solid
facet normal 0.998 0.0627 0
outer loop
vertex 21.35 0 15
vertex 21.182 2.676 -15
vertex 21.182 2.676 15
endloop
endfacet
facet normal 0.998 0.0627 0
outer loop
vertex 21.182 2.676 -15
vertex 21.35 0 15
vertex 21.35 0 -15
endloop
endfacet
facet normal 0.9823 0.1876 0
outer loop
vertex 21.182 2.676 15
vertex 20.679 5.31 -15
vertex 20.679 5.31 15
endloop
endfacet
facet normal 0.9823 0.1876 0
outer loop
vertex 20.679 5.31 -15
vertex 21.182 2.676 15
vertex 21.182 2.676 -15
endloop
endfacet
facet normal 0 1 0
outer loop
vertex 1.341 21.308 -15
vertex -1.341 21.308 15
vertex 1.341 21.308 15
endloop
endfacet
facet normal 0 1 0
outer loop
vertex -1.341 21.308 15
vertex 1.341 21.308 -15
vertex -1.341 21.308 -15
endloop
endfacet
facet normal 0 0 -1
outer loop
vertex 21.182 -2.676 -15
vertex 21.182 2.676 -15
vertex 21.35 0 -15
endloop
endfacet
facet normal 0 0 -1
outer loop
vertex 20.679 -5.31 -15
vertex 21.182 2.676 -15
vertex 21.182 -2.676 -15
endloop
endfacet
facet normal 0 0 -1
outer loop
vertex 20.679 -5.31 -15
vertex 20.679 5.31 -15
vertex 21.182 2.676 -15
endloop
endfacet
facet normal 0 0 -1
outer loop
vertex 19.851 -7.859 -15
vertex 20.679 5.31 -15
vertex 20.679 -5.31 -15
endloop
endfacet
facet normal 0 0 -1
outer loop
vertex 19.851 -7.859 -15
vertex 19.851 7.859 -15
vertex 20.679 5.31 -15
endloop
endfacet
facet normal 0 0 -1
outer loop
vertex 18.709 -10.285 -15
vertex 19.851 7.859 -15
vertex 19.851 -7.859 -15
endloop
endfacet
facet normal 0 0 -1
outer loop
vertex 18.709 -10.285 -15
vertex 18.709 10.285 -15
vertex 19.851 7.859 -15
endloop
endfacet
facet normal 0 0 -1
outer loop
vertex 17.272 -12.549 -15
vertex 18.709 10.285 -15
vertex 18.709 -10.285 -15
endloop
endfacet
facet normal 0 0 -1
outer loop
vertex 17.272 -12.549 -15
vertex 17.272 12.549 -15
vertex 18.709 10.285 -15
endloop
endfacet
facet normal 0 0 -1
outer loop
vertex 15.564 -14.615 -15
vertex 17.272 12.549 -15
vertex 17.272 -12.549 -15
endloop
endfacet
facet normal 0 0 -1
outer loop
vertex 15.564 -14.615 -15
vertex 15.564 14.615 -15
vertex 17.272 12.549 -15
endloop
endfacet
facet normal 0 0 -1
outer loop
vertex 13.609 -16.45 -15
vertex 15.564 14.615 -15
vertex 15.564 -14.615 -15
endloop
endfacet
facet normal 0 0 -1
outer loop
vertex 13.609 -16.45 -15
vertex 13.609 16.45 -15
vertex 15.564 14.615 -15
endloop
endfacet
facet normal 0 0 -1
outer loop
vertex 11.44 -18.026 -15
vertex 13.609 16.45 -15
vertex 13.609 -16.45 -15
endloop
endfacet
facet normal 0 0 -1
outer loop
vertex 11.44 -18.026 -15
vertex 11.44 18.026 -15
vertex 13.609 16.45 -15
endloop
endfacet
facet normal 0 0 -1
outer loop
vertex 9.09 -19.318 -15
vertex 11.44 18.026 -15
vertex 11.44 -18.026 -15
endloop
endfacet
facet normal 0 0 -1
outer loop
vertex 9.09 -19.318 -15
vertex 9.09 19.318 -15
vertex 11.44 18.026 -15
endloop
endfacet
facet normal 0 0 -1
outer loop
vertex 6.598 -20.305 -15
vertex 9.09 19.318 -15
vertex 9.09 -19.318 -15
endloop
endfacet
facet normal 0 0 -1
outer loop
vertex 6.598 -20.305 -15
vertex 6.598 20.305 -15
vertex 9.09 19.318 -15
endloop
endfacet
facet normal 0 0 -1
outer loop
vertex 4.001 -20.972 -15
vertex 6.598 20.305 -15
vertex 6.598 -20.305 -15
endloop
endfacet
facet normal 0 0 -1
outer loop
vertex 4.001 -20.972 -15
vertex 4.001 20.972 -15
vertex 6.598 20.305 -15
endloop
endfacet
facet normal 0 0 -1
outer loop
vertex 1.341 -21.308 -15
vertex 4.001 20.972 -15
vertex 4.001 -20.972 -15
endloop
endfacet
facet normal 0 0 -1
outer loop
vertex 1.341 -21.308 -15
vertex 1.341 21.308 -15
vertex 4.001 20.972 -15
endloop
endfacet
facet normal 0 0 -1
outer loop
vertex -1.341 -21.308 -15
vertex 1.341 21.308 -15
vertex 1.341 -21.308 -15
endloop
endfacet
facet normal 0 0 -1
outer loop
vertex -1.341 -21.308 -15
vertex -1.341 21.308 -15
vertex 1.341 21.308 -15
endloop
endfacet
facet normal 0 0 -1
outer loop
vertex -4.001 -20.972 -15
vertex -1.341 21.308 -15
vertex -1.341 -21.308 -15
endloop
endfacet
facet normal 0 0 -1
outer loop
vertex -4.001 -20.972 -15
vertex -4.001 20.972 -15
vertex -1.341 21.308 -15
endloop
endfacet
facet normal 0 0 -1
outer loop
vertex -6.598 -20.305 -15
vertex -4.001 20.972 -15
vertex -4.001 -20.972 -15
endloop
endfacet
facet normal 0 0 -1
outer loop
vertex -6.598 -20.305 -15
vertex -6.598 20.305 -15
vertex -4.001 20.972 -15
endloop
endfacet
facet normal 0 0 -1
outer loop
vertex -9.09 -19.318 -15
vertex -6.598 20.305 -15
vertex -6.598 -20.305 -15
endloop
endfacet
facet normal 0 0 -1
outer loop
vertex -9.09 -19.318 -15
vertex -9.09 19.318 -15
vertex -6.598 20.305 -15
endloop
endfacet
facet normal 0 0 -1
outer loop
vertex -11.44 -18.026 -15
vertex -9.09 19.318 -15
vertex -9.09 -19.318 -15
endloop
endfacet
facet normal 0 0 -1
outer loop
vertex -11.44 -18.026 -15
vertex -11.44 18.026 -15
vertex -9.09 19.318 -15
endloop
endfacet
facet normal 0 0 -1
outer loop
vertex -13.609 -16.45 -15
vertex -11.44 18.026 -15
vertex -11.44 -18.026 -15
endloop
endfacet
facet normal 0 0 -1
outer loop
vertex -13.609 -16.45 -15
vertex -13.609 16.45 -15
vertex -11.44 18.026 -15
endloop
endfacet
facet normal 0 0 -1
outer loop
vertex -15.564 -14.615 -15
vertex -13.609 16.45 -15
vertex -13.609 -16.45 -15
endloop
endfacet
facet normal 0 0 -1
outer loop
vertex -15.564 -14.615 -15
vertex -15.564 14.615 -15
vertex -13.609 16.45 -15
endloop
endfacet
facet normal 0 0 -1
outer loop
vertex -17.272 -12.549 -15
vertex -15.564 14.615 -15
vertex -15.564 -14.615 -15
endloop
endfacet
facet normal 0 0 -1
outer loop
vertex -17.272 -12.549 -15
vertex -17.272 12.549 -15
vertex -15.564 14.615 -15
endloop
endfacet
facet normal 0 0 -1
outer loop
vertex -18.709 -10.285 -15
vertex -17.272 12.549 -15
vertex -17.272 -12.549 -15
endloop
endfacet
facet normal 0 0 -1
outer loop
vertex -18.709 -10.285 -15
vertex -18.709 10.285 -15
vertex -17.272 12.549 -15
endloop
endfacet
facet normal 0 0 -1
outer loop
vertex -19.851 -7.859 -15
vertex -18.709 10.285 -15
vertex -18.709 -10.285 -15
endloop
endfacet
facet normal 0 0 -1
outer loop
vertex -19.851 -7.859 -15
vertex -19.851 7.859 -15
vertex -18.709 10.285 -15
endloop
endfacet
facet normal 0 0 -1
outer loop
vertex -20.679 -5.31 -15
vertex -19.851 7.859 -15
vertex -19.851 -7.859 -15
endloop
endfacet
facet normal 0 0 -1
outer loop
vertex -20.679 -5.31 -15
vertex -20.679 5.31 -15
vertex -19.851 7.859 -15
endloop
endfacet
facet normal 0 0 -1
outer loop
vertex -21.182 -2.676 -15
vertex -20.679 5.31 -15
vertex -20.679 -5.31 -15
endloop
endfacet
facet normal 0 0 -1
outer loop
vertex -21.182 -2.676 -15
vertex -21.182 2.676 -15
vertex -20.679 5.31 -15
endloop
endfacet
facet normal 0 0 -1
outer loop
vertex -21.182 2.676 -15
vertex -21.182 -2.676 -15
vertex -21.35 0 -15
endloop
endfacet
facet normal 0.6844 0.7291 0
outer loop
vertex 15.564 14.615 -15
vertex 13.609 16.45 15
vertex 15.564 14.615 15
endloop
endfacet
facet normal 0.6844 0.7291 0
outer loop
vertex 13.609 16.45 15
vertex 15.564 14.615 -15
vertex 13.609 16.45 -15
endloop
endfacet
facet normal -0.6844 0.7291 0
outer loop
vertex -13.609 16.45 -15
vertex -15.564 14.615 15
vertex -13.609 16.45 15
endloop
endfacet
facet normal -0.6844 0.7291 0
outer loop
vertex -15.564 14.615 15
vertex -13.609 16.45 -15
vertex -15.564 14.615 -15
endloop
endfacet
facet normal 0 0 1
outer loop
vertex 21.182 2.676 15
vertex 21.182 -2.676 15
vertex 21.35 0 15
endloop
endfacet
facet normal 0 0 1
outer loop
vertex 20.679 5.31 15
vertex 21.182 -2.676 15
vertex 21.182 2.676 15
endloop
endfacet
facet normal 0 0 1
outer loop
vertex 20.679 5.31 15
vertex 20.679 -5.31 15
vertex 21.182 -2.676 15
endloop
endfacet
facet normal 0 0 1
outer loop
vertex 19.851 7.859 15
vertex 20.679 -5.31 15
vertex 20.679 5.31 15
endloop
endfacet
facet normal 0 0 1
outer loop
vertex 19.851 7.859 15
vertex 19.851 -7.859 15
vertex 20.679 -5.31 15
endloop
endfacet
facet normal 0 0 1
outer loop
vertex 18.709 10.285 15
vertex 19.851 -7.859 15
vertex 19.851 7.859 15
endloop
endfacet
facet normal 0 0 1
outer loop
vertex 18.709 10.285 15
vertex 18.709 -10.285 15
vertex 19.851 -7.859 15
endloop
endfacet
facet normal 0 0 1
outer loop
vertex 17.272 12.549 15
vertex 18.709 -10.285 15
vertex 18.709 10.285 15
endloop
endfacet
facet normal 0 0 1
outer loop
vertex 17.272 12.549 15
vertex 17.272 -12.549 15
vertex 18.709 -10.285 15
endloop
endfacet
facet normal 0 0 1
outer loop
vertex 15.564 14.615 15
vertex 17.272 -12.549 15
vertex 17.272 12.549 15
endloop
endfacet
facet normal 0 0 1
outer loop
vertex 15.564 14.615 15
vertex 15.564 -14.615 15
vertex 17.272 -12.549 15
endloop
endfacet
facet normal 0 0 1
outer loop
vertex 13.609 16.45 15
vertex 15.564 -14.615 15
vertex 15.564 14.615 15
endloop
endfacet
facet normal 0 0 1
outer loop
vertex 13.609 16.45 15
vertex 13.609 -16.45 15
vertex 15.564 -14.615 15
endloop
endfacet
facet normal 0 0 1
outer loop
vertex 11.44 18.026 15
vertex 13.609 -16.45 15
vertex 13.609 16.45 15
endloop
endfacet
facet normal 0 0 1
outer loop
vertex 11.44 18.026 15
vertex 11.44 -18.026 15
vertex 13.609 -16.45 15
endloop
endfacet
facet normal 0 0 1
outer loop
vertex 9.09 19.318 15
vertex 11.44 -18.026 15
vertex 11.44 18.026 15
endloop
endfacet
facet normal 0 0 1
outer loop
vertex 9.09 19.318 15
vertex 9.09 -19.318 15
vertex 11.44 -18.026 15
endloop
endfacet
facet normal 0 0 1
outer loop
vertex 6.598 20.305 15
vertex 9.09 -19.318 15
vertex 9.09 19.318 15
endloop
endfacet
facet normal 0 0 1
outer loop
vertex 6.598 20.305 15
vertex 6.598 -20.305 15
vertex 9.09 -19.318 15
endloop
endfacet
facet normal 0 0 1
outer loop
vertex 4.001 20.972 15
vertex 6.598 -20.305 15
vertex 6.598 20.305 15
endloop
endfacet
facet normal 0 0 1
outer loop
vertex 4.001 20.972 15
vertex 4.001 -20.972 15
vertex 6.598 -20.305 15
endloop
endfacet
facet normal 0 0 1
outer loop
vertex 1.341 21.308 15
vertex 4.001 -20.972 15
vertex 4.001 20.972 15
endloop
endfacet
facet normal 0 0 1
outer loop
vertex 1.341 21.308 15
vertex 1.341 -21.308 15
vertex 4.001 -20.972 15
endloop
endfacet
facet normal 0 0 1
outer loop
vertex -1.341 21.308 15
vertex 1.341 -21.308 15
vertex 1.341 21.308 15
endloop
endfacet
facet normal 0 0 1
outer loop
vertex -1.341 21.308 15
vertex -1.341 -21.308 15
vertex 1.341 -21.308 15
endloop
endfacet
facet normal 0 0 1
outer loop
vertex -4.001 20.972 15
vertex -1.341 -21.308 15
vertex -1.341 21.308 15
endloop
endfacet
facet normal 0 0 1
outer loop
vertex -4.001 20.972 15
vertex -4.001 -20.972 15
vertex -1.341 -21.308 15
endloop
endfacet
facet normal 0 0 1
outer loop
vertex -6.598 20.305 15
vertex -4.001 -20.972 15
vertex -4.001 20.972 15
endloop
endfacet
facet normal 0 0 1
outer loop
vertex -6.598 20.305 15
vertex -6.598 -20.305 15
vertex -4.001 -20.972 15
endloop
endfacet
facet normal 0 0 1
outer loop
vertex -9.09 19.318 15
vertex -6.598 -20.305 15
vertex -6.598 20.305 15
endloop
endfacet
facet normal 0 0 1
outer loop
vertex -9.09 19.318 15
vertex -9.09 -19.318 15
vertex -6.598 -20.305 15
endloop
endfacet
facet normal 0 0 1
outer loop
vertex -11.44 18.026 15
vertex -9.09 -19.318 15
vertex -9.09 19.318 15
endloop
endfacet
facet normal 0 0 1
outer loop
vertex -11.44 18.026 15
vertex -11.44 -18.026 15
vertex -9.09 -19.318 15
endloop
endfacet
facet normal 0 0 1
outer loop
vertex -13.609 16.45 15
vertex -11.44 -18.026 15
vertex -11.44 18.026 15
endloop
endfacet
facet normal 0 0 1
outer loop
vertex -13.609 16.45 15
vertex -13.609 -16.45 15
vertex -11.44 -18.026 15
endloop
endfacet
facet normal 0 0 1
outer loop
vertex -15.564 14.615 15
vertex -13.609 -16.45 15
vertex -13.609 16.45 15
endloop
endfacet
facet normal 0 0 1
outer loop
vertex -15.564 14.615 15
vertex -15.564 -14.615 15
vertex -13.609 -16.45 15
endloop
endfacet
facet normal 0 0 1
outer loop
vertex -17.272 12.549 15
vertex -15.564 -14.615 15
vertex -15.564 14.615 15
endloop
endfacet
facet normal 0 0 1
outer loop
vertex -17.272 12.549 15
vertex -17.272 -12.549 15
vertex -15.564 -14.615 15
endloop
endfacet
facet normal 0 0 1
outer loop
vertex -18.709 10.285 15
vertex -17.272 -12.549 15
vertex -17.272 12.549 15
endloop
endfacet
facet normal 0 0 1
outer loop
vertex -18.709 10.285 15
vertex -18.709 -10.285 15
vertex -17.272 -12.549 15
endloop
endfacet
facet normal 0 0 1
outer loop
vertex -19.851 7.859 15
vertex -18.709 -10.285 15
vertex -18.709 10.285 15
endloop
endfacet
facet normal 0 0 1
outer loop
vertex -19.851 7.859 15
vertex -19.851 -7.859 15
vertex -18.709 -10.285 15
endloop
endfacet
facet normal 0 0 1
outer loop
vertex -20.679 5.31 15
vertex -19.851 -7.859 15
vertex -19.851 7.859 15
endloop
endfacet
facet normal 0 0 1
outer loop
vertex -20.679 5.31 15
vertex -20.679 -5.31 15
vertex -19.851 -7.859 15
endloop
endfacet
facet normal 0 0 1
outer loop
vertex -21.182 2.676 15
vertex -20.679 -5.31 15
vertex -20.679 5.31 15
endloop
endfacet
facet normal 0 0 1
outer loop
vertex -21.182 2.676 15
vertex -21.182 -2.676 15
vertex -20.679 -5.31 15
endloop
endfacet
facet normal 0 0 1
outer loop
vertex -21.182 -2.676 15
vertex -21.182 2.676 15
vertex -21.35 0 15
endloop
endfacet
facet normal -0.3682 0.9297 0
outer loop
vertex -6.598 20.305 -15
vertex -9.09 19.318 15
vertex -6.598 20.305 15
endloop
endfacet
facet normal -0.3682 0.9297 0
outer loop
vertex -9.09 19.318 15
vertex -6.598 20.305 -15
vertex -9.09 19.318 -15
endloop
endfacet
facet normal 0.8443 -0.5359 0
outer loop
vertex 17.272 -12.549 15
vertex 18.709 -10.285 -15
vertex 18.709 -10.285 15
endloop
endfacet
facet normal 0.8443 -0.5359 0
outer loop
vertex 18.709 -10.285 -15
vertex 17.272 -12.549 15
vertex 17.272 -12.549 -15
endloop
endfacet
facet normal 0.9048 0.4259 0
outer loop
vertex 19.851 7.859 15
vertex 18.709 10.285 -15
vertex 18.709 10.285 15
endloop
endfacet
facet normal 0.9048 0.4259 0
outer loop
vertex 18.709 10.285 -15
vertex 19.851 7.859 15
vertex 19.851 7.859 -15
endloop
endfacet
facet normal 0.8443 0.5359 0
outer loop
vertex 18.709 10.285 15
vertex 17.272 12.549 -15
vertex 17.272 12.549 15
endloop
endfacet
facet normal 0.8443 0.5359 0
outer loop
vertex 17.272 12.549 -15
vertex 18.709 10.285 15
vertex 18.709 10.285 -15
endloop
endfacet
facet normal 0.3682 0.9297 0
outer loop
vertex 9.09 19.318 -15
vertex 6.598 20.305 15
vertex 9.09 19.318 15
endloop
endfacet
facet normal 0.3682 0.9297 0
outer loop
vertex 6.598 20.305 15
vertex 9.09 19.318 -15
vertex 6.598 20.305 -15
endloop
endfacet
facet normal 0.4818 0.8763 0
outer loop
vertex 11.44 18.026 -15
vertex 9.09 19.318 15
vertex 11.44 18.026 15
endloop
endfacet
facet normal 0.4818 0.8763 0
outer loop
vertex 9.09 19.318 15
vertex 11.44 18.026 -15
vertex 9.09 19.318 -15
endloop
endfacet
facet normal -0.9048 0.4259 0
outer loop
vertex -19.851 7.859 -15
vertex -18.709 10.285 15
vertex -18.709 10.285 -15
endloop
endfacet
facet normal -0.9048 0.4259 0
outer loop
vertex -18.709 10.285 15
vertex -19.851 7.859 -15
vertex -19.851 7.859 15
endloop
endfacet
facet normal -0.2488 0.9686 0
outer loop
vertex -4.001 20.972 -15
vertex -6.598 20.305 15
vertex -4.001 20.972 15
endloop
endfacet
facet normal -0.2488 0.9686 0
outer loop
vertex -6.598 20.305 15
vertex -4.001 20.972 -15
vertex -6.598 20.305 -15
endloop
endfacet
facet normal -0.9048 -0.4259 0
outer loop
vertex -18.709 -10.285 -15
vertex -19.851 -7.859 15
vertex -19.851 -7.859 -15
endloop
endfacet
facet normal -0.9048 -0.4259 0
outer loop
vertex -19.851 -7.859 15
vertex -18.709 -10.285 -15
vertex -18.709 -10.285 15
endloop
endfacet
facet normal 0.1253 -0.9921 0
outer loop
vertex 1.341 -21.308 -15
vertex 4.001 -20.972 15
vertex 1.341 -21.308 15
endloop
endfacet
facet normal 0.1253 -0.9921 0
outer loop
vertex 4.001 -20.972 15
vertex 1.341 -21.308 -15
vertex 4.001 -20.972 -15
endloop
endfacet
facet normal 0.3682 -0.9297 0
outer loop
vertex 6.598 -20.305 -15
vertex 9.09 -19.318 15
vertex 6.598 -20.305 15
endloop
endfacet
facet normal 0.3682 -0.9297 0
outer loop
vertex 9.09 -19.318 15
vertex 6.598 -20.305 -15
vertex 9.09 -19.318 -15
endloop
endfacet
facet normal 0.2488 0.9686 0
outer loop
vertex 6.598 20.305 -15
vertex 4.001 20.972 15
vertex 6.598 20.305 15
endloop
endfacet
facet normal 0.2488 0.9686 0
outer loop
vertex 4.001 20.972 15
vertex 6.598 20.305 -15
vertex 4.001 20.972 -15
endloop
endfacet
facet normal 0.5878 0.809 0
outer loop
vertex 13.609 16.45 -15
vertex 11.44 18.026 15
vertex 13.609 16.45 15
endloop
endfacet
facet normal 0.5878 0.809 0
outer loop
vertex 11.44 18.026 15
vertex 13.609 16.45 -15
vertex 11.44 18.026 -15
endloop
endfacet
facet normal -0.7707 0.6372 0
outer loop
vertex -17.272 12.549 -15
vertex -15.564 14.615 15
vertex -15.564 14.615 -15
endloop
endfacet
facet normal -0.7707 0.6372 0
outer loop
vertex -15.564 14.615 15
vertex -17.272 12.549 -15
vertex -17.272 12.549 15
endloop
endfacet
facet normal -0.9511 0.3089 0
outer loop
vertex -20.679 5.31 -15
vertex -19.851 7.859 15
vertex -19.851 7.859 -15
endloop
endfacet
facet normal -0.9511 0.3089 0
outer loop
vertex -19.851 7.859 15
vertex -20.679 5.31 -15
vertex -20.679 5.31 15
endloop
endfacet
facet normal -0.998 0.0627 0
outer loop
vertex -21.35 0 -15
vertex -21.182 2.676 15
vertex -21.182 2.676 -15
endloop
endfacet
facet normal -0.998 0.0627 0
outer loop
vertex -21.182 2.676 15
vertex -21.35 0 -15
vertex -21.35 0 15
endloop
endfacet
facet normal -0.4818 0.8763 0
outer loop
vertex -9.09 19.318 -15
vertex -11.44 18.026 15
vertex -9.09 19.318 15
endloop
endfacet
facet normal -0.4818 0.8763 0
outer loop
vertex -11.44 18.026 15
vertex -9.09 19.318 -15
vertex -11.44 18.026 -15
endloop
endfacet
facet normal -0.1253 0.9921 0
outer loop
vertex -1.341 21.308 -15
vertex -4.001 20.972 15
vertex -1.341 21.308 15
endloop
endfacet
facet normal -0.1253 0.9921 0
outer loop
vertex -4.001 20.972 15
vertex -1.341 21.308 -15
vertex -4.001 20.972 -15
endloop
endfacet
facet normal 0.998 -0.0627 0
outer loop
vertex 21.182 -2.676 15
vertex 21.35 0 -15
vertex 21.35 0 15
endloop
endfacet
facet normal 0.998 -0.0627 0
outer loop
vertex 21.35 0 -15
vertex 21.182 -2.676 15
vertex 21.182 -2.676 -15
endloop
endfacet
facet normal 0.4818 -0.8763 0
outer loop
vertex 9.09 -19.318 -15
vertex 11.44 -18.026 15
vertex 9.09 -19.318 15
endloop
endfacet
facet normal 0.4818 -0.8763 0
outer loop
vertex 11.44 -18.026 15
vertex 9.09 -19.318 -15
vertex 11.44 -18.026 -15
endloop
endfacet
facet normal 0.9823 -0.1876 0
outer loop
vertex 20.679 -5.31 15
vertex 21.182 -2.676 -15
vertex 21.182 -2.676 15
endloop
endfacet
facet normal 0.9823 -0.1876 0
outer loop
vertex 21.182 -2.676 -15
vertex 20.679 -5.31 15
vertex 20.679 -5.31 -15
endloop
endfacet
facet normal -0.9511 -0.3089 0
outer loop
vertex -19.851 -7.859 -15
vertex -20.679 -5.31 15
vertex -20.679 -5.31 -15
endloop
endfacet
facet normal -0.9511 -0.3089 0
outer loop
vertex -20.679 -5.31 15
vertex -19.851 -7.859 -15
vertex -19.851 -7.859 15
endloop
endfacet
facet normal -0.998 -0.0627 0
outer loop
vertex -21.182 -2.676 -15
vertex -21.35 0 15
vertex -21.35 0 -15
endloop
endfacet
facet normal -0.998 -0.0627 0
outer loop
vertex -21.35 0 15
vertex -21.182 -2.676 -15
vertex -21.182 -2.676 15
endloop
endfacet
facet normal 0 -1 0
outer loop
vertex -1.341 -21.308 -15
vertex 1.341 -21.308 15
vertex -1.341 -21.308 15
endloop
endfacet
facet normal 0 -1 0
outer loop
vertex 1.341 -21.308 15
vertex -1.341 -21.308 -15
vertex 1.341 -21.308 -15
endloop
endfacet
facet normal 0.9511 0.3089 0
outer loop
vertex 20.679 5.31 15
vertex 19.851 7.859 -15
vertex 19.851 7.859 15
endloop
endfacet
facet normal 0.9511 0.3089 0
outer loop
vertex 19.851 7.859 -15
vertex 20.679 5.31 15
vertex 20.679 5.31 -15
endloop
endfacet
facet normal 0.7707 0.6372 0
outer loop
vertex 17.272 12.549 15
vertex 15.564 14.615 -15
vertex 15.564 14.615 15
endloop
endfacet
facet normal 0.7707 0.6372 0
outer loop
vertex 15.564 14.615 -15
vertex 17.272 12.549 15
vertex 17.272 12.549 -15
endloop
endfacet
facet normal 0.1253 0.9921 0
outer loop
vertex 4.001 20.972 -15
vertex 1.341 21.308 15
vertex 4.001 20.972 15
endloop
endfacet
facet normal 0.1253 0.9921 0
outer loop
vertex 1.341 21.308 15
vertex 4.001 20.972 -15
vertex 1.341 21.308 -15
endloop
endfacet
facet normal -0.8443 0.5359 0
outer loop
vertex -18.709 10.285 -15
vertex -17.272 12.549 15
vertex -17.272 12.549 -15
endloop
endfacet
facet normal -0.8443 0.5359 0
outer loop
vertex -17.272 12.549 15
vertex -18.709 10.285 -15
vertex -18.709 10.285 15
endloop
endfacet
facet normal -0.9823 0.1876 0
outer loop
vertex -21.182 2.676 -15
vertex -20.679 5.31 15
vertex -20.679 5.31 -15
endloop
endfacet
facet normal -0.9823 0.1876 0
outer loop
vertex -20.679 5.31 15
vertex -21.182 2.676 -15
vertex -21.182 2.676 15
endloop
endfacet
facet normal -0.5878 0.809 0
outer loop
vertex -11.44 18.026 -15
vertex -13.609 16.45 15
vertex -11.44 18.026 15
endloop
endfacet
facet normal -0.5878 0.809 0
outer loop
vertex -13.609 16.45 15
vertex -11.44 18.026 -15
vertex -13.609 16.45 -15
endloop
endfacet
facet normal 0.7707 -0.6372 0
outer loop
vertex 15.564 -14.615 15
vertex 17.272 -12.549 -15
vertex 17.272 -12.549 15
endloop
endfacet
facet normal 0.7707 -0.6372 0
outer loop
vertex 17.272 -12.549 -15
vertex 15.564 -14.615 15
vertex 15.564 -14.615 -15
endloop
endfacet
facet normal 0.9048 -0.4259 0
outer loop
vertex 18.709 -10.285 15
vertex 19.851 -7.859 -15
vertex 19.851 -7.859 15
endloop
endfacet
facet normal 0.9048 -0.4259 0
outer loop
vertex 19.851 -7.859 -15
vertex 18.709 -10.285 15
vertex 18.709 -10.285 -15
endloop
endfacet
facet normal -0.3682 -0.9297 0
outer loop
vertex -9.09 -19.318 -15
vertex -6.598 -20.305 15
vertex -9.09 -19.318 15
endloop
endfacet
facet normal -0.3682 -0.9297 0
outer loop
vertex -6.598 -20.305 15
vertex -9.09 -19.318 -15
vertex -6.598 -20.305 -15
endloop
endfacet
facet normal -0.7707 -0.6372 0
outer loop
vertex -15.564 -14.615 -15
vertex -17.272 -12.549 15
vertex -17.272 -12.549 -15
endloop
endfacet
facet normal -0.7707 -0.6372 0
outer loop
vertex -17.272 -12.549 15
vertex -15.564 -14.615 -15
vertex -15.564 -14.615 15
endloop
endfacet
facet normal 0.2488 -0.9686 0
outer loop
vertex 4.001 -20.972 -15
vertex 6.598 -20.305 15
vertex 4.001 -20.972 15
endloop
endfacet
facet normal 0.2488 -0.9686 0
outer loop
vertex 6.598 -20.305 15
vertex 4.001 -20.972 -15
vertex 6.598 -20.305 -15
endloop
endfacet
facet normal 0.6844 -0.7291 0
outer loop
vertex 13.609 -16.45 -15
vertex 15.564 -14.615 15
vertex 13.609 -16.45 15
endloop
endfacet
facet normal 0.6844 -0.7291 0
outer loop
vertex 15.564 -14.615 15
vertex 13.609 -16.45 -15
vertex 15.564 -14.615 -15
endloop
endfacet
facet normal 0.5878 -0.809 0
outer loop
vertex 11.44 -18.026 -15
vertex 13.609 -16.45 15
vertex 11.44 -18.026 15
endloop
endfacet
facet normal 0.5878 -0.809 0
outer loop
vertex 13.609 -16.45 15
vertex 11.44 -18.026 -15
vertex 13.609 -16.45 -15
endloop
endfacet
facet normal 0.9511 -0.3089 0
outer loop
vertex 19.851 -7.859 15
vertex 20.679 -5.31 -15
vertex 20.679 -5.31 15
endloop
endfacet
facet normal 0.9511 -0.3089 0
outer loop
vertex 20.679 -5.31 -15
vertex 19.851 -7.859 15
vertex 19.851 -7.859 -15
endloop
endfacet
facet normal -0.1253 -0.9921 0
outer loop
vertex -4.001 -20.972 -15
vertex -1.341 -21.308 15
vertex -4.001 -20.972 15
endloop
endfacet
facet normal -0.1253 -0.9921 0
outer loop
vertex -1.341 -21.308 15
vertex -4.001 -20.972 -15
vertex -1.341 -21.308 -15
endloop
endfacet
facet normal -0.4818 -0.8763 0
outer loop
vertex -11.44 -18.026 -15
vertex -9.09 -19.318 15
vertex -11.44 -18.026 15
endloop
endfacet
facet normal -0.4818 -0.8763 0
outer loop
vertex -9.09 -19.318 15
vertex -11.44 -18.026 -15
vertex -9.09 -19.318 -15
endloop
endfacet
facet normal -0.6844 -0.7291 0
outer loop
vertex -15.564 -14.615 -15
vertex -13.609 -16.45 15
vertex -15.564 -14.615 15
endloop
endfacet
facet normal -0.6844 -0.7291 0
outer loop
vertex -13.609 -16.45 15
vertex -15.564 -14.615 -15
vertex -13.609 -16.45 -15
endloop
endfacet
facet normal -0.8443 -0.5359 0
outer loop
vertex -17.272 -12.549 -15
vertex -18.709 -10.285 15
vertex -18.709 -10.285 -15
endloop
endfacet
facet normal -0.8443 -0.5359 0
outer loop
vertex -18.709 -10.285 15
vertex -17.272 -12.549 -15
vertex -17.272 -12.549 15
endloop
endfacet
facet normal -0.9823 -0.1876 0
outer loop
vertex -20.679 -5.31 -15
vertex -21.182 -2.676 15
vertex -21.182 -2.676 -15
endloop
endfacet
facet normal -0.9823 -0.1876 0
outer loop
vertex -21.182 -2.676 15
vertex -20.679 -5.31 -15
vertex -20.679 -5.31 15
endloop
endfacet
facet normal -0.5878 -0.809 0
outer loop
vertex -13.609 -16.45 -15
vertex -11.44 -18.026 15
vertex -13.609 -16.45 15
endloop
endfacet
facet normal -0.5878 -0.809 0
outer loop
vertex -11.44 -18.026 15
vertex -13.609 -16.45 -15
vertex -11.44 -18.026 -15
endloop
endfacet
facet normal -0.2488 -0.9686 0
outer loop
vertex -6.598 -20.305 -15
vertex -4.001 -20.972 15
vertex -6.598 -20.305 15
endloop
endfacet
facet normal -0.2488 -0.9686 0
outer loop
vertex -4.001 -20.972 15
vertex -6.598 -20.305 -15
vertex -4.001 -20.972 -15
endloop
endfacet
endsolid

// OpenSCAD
$fn = 50;


difference() {
	union() {
		translate(v = [0, 0, -15.0000000000]) {
			cylinder(h = 30, r = 21.3500000000);
		}
	}
	union() {
		translate(v = [0, 0, -100.0000000000]) {
			cylinder(h = 200, r = 0);
		}
	}
}
